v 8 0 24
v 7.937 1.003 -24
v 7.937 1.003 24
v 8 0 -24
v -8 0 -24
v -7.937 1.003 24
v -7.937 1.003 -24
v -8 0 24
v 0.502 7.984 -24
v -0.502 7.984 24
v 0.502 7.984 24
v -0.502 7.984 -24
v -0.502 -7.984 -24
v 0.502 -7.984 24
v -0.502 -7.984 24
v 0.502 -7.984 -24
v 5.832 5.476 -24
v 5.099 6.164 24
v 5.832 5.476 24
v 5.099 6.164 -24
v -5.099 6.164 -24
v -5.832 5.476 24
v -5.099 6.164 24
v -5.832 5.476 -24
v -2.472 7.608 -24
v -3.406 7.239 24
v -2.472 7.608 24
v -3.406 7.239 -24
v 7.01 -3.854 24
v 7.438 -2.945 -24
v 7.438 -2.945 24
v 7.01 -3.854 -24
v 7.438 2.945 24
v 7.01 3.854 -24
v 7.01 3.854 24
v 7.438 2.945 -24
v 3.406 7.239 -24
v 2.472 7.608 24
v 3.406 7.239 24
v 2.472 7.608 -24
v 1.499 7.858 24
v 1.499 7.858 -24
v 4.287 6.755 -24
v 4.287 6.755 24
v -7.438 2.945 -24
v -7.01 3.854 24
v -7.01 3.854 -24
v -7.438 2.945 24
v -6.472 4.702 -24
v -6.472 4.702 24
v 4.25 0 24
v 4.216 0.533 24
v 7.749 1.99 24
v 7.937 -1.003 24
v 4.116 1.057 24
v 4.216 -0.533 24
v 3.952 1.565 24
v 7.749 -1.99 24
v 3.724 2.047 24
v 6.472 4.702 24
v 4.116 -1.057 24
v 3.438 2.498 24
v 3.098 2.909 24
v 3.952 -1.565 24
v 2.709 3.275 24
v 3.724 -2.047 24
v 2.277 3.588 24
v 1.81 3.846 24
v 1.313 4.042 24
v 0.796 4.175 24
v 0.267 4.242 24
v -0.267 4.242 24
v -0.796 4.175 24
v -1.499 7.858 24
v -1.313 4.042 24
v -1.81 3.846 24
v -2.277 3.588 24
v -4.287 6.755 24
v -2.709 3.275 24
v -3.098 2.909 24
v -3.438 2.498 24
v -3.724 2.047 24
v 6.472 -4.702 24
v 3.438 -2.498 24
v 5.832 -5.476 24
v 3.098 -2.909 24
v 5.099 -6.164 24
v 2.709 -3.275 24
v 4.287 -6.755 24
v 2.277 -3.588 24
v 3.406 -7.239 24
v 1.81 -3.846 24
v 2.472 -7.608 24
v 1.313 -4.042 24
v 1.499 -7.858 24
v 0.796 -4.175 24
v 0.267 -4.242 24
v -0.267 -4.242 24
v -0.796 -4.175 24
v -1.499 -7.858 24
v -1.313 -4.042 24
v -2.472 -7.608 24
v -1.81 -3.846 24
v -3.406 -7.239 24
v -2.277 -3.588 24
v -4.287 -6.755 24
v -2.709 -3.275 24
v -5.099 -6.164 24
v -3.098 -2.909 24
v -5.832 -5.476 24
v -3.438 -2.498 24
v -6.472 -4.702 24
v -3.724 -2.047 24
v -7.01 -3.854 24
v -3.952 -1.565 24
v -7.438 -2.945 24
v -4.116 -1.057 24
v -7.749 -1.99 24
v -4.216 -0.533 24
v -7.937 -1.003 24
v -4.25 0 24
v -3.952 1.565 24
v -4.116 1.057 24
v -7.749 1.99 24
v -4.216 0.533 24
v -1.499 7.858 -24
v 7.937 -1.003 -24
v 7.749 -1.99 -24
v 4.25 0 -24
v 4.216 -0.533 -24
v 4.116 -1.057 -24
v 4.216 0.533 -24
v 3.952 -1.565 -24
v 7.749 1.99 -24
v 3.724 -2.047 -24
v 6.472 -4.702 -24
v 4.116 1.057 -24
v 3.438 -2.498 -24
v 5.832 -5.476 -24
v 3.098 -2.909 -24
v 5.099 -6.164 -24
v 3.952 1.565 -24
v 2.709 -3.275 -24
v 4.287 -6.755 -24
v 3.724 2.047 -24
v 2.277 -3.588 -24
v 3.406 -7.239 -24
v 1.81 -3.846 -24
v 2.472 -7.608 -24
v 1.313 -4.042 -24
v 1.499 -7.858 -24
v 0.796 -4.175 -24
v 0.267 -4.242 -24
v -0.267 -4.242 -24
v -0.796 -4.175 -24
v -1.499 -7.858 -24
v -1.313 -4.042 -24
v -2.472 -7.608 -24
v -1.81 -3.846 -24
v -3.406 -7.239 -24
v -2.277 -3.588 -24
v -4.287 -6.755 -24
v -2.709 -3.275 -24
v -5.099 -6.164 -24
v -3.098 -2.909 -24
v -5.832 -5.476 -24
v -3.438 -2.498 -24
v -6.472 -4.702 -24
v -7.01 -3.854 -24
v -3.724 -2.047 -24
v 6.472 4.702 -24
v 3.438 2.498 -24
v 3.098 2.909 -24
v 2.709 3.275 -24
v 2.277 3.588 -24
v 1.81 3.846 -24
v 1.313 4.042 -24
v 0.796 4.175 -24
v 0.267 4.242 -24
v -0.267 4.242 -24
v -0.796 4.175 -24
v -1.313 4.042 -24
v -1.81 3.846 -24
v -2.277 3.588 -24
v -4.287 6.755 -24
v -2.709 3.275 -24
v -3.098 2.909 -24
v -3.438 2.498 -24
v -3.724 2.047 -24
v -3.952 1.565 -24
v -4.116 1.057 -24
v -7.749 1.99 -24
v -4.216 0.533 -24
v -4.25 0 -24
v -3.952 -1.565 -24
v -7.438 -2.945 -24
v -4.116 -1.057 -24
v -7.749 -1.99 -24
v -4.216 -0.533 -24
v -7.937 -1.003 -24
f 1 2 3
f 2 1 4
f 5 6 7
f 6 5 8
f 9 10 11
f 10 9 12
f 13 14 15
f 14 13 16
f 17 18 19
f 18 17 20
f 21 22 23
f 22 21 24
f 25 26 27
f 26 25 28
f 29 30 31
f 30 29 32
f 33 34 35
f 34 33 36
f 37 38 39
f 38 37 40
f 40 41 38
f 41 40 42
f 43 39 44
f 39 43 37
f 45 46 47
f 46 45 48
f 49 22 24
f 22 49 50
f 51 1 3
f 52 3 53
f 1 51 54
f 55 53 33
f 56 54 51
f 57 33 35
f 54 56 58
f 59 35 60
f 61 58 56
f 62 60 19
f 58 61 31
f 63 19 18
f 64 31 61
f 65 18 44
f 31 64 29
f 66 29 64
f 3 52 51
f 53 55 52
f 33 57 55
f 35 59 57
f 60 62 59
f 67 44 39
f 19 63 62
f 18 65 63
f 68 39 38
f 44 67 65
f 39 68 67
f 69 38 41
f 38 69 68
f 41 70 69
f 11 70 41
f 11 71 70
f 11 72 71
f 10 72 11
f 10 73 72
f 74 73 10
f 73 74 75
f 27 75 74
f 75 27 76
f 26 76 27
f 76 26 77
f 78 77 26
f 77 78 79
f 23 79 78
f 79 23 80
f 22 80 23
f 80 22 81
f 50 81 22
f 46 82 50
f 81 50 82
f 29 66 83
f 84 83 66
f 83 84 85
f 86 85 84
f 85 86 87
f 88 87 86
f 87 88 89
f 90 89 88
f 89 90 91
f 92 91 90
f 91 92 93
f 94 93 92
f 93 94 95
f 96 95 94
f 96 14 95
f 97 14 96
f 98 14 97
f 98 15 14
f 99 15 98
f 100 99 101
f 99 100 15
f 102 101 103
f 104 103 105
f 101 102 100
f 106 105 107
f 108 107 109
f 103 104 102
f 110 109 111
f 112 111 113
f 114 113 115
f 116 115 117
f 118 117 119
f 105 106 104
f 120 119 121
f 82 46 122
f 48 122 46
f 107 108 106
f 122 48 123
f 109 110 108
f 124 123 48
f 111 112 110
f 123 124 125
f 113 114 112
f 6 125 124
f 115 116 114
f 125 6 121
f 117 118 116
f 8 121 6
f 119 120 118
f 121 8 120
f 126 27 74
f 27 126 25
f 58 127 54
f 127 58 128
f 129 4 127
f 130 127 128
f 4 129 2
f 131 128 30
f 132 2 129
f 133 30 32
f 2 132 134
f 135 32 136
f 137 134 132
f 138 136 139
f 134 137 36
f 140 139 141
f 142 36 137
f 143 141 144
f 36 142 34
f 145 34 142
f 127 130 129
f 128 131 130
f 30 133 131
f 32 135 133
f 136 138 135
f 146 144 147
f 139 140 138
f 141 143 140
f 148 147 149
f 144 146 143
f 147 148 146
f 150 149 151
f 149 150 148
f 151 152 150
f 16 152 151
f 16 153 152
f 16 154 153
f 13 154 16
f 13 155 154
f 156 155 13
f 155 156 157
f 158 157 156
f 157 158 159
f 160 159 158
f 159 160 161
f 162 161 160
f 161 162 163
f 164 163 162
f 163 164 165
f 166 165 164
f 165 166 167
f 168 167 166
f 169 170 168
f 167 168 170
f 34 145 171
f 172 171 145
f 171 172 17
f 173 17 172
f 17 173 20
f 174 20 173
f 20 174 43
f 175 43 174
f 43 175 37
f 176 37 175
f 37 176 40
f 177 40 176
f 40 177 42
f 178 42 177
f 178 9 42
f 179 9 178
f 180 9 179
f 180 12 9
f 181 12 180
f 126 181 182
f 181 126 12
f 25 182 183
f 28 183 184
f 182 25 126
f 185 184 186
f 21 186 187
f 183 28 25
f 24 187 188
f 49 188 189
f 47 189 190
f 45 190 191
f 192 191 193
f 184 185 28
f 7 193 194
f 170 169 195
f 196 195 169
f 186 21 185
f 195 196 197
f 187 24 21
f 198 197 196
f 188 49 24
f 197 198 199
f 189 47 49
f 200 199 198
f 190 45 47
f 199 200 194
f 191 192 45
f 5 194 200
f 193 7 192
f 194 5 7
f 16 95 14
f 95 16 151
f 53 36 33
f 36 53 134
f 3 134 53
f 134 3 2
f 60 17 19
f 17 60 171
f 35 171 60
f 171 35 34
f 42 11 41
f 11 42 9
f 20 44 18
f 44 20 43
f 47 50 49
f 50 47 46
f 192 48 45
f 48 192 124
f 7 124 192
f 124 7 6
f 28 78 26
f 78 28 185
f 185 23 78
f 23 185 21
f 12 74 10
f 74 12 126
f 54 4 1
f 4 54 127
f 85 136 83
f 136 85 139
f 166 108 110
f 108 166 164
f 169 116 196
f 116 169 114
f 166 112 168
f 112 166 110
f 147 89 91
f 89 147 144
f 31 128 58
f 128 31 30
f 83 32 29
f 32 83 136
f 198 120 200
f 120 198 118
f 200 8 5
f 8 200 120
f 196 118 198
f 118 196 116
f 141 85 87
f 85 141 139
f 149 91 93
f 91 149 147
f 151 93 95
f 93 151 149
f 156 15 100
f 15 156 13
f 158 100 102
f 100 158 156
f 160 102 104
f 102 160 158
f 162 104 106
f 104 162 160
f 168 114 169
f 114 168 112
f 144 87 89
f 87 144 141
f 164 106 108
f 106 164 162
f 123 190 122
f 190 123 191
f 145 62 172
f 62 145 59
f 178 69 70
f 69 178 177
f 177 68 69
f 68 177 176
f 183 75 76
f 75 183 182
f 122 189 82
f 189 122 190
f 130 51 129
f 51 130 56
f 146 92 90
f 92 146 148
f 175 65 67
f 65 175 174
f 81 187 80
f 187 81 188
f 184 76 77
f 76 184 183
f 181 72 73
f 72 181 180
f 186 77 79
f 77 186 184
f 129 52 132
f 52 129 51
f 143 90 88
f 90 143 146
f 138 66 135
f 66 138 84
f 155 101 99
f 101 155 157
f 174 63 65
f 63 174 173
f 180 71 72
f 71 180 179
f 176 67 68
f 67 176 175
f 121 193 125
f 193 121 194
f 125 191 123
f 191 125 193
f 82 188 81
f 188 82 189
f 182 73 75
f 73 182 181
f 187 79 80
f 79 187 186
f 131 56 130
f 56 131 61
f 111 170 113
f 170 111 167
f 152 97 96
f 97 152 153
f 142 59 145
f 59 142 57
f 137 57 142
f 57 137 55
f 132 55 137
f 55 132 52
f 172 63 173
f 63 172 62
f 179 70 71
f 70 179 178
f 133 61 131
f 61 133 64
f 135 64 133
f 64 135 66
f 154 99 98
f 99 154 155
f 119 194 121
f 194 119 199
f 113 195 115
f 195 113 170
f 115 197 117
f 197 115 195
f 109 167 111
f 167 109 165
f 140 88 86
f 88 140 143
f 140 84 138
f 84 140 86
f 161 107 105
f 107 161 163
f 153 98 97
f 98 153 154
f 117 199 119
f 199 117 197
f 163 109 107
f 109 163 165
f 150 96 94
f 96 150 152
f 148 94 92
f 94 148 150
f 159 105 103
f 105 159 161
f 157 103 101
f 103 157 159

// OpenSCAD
$fn = 50;


difference() {
	union() {
		translate(v = [0, 0, -24.0000000000]) {
			cylinder(h = 48, r = 8.0000000000);
		}
	}
	union() {
		translate(v = [0, 0, -100.0000000000]) {
			cylinder(h = 200, r = 4.2500000000);
		}
	}
}
